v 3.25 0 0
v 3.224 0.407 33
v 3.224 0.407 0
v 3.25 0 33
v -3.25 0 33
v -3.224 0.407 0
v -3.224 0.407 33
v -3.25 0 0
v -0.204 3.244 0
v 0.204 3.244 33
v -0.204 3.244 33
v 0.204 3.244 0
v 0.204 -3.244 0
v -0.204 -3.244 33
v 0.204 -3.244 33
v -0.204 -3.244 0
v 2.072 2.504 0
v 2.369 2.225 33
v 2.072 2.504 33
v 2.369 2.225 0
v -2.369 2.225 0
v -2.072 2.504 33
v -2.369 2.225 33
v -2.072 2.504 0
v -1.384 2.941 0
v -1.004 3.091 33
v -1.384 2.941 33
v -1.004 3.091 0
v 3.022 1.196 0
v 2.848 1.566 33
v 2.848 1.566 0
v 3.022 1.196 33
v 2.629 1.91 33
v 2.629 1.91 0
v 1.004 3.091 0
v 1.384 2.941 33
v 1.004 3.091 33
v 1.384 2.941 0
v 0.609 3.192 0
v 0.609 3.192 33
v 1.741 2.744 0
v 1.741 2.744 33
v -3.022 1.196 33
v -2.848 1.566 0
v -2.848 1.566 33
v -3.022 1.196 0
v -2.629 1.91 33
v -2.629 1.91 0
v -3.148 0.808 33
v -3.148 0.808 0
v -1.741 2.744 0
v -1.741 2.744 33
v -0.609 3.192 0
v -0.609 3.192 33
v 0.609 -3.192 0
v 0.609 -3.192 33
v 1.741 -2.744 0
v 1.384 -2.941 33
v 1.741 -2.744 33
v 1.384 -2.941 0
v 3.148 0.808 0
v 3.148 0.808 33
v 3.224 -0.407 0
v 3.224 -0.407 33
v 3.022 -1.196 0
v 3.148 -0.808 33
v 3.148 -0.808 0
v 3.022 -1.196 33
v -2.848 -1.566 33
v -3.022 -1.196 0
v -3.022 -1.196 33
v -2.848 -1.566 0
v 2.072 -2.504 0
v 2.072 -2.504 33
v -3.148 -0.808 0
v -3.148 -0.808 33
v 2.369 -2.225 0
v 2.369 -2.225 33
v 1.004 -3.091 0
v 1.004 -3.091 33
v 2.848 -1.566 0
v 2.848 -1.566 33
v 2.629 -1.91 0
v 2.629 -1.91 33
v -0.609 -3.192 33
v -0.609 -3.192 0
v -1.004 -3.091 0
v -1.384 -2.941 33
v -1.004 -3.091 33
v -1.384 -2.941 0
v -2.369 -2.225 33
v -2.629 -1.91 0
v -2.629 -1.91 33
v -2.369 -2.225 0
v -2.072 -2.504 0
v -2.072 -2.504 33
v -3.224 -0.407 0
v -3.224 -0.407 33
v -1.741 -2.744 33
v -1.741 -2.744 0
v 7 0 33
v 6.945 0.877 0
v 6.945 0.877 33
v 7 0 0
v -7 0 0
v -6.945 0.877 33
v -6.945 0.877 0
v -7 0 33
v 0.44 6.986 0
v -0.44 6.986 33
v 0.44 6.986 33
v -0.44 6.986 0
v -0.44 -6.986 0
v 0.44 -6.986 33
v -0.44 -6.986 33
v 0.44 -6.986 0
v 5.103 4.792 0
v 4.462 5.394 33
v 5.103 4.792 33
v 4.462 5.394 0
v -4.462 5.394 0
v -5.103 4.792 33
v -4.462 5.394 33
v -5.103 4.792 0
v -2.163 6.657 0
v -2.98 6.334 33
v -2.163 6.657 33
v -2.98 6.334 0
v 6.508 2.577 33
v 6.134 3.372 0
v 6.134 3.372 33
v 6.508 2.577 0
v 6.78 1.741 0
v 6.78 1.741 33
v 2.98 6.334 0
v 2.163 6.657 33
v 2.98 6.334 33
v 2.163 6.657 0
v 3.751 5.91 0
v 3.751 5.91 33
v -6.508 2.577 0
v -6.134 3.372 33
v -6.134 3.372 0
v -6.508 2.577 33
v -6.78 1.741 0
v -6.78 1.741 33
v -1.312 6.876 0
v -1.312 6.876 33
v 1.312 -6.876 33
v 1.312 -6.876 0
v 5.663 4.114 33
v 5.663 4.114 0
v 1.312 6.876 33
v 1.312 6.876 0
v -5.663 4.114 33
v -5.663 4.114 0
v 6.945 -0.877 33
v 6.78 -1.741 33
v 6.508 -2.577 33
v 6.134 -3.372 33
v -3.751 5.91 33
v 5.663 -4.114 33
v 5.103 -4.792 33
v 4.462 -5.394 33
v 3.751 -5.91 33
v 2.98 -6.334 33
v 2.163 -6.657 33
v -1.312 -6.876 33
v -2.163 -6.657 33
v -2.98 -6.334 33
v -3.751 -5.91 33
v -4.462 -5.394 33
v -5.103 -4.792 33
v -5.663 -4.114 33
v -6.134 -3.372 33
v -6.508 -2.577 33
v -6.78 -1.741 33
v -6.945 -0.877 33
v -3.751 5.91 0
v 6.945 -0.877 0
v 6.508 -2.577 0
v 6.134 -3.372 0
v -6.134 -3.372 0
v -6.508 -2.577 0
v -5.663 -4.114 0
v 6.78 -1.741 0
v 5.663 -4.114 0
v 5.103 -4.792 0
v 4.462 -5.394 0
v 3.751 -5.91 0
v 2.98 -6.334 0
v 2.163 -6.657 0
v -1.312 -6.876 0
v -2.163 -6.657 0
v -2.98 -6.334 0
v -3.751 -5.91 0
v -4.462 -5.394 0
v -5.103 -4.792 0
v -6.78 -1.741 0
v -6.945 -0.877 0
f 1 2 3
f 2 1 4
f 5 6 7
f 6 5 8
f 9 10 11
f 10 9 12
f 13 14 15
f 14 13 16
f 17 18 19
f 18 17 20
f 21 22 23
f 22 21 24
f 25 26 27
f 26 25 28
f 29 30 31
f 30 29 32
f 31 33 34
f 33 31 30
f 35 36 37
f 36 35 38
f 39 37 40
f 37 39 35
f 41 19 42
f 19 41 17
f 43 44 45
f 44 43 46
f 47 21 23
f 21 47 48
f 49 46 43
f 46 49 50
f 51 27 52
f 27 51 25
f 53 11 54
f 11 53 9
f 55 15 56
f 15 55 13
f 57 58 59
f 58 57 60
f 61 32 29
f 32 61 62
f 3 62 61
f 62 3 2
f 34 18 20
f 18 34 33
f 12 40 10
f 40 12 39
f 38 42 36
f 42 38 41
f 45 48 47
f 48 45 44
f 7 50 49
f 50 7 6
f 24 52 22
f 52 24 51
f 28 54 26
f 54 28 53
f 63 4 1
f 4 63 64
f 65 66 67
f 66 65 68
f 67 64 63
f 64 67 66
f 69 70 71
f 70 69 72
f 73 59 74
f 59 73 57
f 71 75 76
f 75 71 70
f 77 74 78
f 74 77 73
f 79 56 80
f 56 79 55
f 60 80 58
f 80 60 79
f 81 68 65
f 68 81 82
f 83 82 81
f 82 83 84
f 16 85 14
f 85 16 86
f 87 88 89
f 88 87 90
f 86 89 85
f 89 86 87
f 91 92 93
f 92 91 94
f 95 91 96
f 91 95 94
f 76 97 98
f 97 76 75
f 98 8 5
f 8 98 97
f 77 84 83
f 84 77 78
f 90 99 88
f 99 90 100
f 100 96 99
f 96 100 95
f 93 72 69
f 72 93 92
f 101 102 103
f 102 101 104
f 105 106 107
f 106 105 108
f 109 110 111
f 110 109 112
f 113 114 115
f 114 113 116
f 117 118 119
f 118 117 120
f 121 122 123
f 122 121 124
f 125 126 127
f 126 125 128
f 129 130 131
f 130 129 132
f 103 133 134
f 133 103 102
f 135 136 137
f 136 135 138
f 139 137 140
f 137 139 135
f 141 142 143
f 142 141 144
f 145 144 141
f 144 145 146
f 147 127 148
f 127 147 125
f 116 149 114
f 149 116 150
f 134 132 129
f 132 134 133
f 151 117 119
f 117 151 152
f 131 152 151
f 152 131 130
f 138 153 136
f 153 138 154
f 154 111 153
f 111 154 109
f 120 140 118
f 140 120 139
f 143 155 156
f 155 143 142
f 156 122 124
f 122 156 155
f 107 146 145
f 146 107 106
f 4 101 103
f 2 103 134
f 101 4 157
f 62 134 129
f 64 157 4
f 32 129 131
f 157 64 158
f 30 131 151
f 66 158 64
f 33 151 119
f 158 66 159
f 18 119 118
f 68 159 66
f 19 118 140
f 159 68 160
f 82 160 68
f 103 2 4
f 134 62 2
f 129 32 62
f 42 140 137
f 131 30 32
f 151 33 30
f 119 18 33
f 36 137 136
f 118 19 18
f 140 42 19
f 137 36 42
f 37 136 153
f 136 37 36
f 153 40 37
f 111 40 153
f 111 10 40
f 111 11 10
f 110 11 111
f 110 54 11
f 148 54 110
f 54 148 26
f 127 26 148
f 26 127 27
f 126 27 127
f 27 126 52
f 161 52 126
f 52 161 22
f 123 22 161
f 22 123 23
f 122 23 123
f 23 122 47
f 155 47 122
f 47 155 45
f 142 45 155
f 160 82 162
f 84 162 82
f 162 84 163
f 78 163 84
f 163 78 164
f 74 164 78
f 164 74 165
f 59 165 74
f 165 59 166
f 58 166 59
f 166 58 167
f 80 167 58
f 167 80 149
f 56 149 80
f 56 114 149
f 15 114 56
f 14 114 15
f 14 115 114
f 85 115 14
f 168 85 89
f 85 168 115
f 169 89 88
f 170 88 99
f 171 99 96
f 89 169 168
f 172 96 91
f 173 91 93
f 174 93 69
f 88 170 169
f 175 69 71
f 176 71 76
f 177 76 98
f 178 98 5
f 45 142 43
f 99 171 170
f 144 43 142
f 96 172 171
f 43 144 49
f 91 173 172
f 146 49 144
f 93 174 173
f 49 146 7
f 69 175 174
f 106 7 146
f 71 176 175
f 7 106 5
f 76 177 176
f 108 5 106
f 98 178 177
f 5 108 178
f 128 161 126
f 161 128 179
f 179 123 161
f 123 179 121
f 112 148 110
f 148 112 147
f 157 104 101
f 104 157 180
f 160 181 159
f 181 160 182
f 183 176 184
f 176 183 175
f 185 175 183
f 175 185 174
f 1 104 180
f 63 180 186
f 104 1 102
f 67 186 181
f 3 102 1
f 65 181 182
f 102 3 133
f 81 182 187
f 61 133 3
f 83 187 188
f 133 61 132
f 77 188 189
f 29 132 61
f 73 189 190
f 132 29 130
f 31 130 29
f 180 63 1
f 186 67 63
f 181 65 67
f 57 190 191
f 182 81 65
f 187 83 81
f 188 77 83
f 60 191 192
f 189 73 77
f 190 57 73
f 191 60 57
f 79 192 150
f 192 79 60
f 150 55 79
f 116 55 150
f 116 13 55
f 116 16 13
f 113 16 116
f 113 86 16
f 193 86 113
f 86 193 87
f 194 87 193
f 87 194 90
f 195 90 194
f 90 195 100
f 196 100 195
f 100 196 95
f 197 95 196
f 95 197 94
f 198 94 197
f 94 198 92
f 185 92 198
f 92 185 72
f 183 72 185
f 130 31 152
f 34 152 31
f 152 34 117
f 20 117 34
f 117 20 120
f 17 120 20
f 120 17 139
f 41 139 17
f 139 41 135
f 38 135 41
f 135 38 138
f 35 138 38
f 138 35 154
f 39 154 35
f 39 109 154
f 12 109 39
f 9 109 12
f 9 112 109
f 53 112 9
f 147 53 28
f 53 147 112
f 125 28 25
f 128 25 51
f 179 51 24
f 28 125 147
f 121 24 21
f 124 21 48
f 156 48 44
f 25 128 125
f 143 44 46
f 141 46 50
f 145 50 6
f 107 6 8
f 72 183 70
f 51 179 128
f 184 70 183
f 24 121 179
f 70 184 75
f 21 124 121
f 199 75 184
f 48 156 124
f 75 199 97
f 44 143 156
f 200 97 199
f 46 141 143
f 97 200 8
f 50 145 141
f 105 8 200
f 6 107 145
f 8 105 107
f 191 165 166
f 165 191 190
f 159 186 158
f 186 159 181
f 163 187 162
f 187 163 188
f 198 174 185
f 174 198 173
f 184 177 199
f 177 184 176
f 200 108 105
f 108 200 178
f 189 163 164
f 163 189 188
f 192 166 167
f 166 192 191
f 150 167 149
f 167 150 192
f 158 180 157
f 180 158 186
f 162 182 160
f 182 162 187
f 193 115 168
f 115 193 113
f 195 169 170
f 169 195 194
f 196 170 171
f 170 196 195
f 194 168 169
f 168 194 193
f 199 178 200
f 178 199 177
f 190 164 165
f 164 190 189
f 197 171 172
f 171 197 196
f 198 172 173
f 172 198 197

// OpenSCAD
$fn = 50;


difference() {
	union() {
		cylinder(h = 33, r = 7.0000000000);
	}
	union() {
		translate(v = [0.0000000000, 0.0000000000, -100.0000000000]) {
			cylinder(h = 200, r = 3.2500000000);
		}
		cylinder(h = 33, r = 1.8000000000);
		cylinder(h = 33, r = 1.8000000000);
		cylinder(h = 33, r = 1.8000000000);
	}
}
